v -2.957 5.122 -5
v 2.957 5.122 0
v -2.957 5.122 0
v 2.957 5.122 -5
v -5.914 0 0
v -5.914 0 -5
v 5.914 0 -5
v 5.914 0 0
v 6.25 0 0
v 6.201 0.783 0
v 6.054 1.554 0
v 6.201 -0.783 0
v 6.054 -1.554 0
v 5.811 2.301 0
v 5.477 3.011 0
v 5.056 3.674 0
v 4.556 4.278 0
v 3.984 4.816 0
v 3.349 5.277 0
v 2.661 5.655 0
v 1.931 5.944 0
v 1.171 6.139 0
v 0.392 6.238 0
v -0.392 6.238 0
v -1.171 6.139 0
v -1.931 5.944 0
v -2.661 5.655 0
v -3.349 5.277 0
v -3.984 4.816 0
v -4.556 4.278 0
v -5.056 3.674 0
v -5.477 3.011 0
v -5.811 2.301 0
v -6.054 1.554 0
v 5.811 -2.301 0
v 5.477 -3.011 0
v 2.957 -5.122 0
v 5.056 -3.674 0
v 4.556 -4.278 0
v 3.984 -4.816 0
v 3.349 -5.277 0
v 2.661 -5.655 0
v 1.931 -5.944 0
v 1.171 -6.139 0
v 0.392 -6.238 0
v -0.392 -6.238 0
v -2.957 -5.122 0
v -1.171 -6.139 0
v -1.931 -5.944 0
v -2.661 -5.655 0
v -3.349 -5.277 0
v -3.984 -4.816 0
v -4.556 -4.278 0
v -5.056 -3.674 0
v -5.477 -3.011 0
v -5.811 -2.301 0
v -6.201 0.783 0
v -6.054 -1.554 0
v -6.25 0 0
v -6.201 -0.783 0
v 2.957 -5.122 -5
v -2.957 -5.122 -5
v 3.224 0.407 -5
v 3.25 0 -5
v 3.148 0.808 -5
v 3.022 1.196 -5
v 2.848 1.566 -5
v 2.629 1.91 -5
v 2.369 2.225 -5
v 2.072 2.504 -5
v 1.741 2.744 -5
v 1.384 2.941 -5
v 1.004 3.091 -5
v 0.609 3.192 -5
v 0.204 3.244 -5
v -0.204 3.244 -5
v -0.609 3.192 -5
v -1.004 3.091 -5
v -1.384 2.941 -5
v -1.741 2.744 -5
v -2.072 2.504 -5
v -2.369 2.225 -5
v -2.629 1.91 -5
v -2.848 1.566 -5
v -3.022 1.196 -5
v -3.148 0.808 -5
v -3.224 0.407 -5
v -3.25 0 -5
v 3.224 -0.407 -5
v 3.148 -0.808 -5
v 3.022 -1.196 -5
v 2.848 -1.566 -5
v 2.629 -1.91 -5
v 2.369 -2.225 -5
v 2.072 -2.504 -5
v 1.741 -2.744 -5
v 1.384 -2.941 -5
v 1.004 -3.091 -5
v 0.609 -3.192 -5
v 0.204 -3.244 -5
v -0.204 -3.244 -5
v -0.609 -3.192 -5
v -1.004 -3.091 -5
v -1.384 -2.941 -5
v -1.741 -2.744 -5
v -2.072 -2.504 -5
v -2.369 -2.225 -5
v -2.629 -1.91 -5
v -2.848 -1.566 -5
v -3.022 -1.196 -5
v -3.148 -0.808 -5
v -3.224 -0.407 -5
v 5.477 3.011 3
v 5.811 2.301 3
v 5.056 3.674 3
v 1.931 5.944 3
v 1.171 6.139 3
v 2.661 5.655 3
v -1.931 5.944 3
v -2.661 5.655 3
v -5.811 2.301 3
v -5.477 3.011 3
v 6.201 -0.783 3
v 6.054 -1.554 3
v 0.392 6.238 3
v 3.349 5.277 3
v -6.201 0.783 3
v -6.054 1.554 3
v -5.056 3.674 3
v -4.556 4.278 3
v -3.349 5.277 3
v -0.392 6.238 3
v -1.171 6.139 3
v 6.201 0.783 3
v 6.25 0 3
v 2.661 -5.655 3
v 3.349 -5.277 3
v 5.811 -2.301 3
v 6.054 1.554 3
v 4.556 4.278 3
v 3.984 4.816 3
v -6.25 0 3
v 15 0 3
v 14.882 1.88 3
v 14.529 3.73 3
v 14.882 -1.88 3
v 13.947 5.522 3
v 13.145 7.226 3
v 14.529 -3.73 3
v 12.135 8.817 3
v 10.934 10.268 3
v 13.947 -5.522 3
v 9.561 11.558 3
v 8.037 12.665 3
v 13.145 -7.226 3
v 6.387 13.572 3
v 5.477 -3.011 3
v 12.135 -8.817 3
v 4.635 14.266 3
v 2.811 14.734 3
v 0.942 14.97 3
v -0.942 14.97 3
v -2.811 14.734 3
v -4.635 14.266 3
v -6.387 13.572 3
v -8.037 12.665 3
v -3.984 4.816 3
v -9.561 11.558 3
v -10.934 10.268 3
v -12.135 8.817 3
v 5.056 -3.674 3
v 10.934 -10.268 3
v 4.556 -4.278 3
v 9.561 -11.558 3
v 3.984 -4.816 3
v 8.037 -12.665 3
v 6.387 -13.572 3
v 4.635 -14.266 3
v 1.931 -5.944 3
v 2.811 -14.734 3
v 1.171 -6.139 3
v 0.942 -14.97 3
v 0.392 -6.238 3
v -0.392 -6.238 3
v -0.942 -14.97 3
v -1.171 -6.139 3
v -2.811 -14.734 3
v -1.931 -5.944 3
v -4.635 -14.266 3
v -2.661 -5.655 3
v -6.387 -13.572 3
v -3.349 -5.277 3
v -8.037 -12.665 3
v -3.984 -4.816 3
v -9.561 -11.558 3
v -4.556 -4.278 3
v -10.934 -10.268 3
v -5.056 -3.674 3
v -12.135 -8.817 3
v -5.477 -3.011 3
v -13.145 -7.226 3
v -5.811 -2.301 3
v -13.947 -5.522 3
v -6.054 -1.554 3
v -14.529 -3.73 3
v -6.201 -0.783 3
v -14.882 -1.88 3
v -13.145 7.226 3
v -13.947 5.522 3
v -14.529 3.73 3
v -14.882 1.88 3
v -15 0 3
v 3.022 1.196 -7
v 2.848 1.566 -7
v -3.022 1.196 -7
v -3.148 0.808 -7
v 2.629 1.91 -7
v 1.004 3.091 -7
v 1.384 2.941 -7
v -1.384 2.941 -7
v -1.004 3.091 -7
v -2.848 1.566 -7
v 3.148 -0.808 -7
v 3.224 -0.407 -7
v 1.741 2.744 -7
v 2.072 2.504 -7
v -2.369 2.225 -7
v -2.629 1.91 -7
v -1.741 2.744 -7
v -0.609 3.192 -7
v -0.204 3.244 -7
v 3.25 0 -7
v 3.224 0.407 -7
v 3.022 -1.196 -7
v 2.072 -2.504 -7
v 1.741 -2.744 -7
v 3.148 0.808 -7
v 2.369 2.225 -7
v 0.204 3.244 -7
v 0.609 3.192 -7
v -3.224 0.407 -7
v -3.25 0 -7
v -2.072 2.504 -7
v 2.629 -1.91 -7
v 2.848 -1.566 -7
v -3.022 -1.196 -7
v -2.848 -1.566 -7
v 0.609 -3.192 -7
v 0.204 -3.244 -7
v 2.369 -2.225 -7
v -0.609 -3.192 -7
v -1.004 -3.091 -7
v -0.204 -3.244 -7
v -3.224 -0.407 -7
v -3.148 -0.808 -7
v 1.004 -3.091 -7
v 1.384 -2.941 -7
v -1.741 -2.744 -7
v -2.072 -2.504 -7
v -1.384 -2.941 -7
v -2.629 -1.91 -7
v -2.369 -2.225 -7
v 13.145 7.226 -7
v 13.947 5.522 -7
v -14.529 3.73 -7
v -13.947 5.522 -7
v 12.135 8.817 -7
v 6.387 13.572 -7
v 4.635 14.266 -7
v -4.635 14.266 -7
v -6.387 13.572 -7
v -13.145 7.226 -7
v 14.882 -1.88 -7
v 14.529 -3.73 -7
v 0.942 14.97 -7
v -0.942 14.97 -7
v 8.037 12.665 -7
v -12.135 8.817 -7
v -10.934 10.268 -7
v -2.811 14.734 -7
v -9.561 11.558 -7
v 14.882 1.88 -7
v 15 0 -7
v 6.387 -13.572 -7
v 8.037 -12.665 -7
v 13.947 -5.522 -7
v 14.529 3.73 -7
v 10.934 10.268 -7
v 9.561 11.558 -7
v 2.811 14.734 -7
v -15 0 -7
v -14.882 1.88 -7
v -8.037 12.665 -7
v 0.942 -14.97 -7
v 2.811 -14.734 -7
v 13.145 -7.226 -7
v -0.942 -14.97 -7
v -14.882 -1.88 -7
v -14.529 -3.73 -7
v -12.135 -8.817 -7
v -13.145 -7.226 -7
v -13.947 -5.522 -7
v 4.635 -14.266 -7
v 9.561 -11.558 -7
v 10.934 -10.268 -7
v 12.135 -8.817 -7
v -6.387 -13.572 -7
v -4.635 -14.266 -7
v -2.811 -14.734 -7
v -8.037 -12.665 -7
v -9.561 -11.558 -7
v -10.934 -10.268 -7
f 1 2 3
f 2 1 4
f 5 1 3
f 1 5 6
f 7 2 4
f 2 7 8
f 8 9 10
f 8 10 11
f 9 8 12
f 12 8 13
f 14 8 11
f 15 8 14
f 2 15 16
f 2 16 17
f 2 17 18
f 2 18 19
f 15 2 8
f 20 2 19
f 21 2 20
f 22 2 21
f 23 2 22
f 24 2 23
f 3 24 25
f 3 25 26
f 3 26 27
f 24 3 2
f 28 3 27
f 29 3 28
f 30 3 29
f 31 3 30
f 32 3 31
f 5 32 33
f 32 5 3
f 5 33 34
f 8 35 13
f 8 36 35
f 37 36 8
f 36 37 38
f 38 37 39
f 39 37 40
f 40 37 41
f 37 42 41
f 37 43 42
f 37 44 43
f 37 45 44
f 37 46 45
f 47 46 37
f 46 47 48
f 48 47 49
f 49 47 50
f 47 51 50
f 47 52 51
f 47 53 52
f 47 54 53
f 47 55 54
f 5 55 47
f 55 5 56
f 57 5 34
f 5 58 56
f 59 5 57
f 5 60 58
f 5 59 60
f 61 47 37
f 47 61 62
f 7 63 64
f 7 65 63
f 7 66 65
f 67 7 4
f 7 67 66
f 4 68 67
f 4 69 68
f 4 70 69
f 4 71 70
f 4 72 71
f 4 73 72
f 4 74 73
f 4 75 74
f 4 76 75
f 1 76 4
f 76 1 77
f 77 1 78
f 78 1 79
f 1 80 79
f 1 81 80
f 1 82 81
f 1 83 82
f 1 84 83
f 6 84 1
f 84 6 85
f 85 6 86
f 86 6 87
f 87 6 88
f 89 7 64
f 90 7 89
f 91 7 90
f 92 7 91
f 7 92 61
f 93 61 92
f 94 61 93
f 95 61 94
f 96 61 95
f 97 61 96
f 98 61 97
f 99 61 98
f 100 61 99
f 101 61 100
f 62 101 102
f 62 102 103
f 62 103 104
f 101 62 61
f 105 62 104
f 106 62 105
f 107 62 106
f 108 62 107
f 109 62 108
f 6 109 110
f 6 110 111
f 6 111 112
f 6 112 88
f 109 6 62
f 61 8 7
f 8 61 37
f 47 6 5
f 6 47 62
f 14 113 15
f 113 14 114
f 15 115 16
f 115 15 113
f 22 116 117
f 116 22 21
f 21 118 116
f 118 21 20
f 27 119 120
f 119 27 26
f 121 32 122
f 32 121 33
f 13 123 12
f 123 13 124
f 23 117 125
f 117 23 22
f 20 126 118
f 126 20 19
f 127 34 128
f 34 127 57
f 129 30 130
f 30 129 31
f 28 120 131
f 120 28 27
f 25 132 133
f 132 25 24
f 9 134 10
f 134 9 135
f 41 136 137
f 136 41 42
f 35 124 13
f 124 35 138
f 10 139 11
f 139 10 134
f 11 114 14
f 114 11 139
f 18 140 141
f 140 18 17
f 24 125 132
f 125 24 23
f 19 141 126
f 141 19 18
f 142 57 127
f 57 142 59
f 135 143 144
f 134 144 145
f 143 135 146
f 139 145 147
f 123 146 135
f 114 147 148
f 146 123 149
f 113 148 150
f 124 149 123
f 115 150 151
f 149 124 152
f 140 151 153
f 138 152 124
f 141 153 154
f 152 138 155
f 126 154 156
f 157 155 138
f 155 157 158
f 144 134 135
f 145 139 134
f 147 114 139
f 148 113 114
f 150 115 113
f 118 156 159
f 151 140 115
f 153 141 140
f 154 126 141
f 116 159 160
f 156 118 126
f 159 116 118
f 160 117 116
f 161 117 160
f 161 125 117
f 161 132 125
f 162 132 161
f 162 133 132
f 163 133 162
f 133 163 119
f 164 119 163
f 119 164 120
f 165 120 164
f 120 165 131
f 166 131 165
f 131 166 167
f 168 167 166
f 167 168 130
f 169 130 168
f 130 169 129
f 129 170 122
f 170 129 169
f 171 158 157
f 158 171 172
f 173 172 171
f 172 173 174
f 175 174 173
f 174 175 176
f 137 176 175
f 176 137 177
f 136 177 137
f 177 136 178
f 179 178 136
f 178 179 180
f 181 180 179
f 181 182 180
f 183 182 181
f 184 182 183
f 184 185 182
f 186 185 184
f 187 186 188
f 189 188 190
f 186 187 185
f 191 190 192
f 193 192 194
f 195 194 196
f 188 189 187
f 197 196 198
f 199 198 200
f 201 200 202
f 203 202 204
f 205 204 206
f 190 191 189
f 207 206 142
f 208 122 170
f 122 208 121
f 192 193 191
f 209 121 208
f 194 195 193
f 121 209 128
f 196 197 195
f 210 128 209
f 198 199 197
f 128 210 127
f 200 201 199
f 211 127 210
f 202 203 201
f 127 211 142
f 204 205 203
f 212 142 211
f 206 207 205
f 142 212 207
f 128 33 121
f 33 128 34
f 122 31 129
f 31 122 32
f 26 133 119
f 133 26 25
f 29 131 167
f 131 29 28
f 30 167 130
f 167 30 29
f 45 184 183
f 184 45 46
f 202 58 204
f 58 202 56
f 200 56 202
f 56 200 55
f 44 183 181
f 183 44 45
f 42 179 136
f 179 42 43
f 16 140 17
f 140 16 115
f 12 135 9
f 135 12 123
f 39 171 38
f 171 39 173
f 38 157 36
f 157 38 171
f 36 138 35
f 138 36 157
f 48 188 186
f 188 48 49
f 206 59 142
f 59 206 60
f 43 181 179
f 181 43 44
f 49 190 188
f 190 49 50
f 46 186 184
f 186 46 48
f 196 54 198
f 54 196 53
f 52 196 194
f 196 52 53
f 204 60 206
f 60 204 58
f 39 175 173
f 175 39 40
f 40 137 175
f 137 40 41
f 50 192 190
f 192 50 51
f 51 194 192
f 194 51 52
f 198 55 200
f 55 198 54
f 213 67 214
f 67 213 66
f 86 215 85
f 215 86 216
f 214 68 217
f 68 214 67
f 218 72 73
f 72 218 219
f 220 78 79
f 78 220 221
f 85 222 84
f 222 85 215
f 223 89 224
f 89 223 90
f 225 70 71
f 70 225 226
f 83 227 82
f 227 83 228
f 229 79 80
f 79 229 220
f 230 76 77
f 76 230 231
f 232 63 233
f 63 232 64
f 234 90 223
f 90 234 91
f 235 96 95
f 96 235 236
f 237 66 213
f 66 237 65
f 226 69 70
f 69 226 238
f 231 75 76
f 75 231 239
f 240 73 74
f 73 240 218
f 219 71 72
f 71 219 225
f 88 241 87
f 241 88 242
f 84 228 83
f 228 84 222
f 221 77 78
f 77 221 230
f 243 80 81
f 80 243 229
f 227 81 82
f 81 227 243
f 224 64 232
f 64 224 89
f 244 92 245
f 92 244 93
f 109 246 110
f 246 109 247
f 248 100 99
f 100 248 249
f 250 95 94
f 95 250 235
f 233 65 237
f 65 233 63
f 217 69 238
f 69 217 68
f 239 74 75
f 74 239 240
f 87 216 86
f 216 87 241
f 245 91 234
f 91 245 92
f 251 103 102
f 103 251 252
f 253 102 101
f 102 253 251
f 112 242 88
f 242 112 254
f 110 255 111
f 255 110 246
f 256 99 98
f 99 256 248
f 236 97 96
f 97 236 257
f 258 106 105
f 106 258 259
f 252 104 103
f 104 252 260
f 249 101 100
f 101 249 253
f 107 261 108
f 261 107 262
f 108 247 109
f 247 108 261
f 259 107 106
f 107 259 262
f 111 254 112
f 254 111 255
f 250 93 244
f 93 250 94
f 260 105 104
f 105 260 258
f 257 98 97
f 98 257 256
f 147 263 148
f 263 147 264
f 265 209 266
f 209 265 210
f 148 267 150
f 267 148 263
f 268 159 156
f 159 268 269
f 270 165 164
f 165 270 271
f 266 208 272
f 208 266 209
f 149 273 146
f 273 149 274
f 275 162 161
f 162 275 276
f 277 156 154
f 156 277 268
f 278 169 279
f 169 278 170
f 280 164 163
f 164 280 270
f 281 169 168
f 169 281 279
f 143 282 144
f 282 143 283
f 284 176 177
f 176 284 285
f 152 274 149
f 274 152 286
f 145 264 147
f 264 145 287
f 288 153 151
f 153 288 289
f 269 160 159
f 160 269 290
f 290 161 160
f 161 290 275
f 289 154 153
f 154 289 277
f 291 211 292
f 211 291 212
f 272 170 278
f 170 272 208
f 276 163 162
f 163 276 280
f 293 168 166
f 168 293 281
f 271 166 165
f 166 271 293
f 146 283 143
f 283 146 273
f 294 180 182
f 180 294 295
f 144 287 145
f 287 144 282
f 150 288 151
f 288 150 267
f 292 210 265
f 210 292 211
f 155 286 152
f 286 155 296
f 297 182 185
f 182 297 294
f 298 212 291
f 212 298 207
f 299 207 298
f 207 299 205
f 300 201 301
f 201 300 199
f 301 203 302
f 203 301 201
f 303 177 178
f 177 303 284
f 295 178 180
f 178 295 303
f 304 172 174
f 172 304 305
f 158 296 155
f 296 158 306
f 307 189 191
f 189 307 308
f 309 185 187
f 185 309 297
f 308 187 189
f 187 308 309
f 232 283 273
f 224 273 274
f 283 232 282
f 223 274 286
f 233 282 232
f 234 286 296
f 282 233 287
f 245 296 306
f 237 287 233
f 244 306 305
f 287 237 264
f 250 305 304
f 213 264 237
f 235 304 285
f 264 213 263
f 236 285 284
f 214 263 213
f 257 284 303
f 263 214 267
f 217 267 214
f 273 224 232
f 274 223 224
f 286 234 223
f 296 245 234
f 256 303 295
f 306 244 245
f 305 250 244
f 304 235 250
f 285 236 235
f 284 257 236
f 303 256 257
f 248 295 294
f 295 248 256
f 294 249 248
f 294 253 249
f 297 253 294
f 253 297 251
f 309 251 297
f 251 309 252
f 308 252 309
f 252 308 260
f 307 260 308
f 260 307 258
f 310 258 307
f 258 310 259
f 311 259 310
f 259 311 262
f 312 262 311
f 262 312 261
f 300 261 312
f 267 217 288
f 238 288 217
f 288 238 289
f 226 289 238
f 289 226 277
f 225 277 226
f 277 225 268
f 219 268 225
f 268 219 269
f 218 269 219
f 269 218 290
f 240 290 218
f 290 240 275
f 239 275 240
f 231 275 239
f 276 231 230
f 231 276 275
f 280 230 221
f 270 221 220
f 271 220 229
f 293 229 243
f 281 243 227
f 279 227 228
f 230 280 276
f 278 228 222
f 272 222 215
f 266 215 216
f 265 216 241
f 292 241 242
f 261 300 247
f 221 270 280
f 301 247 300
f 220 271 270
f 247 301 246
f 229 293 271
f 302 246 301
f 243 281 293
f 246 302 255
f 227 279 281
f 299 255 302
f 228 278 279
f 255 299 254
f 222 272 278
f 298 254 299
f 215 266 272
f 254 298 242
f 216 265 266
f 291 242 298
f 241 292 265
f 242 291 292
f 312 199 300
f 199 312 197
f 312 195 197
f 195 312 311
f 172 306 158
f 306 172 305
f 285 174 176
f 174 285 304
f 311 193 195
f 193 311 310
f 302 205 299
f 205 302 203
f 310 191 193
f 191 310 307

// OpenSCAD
$fn = 50;

difference() {
	union() {
		translate(v = [0, 0, -7.0]) {
			cylinder(h = 10.0, r = 15.0);
		}
	}
	union() {
		translate(v = [0, 0, 0]) {
			rotate(a = [0, 0, 0]) {
				difference() {
					union() {
						translate(v = [0, 0, -5]) {
							linear_extrude(height = 5) {
								polygon(points = [[5.914249999999999, 0.0], [2.957125, 5.1218907443321156], [-2.9571249999999982, 5.1218907443321156], [-5.914249999999999, 7.242867331857232e-16], [-2.9571250000000022, -5.121890744332115], [2.9571249999999956, -5.121890744332118]]);
							}
						}
					}
					union();
				}
			}
		}
		#cylinder(h = 3, r = 6.25);
		#translate(v = [0, 0, -100.0]) {
			cylinder(h = 200, r = 3.25);
		}
	}
}
